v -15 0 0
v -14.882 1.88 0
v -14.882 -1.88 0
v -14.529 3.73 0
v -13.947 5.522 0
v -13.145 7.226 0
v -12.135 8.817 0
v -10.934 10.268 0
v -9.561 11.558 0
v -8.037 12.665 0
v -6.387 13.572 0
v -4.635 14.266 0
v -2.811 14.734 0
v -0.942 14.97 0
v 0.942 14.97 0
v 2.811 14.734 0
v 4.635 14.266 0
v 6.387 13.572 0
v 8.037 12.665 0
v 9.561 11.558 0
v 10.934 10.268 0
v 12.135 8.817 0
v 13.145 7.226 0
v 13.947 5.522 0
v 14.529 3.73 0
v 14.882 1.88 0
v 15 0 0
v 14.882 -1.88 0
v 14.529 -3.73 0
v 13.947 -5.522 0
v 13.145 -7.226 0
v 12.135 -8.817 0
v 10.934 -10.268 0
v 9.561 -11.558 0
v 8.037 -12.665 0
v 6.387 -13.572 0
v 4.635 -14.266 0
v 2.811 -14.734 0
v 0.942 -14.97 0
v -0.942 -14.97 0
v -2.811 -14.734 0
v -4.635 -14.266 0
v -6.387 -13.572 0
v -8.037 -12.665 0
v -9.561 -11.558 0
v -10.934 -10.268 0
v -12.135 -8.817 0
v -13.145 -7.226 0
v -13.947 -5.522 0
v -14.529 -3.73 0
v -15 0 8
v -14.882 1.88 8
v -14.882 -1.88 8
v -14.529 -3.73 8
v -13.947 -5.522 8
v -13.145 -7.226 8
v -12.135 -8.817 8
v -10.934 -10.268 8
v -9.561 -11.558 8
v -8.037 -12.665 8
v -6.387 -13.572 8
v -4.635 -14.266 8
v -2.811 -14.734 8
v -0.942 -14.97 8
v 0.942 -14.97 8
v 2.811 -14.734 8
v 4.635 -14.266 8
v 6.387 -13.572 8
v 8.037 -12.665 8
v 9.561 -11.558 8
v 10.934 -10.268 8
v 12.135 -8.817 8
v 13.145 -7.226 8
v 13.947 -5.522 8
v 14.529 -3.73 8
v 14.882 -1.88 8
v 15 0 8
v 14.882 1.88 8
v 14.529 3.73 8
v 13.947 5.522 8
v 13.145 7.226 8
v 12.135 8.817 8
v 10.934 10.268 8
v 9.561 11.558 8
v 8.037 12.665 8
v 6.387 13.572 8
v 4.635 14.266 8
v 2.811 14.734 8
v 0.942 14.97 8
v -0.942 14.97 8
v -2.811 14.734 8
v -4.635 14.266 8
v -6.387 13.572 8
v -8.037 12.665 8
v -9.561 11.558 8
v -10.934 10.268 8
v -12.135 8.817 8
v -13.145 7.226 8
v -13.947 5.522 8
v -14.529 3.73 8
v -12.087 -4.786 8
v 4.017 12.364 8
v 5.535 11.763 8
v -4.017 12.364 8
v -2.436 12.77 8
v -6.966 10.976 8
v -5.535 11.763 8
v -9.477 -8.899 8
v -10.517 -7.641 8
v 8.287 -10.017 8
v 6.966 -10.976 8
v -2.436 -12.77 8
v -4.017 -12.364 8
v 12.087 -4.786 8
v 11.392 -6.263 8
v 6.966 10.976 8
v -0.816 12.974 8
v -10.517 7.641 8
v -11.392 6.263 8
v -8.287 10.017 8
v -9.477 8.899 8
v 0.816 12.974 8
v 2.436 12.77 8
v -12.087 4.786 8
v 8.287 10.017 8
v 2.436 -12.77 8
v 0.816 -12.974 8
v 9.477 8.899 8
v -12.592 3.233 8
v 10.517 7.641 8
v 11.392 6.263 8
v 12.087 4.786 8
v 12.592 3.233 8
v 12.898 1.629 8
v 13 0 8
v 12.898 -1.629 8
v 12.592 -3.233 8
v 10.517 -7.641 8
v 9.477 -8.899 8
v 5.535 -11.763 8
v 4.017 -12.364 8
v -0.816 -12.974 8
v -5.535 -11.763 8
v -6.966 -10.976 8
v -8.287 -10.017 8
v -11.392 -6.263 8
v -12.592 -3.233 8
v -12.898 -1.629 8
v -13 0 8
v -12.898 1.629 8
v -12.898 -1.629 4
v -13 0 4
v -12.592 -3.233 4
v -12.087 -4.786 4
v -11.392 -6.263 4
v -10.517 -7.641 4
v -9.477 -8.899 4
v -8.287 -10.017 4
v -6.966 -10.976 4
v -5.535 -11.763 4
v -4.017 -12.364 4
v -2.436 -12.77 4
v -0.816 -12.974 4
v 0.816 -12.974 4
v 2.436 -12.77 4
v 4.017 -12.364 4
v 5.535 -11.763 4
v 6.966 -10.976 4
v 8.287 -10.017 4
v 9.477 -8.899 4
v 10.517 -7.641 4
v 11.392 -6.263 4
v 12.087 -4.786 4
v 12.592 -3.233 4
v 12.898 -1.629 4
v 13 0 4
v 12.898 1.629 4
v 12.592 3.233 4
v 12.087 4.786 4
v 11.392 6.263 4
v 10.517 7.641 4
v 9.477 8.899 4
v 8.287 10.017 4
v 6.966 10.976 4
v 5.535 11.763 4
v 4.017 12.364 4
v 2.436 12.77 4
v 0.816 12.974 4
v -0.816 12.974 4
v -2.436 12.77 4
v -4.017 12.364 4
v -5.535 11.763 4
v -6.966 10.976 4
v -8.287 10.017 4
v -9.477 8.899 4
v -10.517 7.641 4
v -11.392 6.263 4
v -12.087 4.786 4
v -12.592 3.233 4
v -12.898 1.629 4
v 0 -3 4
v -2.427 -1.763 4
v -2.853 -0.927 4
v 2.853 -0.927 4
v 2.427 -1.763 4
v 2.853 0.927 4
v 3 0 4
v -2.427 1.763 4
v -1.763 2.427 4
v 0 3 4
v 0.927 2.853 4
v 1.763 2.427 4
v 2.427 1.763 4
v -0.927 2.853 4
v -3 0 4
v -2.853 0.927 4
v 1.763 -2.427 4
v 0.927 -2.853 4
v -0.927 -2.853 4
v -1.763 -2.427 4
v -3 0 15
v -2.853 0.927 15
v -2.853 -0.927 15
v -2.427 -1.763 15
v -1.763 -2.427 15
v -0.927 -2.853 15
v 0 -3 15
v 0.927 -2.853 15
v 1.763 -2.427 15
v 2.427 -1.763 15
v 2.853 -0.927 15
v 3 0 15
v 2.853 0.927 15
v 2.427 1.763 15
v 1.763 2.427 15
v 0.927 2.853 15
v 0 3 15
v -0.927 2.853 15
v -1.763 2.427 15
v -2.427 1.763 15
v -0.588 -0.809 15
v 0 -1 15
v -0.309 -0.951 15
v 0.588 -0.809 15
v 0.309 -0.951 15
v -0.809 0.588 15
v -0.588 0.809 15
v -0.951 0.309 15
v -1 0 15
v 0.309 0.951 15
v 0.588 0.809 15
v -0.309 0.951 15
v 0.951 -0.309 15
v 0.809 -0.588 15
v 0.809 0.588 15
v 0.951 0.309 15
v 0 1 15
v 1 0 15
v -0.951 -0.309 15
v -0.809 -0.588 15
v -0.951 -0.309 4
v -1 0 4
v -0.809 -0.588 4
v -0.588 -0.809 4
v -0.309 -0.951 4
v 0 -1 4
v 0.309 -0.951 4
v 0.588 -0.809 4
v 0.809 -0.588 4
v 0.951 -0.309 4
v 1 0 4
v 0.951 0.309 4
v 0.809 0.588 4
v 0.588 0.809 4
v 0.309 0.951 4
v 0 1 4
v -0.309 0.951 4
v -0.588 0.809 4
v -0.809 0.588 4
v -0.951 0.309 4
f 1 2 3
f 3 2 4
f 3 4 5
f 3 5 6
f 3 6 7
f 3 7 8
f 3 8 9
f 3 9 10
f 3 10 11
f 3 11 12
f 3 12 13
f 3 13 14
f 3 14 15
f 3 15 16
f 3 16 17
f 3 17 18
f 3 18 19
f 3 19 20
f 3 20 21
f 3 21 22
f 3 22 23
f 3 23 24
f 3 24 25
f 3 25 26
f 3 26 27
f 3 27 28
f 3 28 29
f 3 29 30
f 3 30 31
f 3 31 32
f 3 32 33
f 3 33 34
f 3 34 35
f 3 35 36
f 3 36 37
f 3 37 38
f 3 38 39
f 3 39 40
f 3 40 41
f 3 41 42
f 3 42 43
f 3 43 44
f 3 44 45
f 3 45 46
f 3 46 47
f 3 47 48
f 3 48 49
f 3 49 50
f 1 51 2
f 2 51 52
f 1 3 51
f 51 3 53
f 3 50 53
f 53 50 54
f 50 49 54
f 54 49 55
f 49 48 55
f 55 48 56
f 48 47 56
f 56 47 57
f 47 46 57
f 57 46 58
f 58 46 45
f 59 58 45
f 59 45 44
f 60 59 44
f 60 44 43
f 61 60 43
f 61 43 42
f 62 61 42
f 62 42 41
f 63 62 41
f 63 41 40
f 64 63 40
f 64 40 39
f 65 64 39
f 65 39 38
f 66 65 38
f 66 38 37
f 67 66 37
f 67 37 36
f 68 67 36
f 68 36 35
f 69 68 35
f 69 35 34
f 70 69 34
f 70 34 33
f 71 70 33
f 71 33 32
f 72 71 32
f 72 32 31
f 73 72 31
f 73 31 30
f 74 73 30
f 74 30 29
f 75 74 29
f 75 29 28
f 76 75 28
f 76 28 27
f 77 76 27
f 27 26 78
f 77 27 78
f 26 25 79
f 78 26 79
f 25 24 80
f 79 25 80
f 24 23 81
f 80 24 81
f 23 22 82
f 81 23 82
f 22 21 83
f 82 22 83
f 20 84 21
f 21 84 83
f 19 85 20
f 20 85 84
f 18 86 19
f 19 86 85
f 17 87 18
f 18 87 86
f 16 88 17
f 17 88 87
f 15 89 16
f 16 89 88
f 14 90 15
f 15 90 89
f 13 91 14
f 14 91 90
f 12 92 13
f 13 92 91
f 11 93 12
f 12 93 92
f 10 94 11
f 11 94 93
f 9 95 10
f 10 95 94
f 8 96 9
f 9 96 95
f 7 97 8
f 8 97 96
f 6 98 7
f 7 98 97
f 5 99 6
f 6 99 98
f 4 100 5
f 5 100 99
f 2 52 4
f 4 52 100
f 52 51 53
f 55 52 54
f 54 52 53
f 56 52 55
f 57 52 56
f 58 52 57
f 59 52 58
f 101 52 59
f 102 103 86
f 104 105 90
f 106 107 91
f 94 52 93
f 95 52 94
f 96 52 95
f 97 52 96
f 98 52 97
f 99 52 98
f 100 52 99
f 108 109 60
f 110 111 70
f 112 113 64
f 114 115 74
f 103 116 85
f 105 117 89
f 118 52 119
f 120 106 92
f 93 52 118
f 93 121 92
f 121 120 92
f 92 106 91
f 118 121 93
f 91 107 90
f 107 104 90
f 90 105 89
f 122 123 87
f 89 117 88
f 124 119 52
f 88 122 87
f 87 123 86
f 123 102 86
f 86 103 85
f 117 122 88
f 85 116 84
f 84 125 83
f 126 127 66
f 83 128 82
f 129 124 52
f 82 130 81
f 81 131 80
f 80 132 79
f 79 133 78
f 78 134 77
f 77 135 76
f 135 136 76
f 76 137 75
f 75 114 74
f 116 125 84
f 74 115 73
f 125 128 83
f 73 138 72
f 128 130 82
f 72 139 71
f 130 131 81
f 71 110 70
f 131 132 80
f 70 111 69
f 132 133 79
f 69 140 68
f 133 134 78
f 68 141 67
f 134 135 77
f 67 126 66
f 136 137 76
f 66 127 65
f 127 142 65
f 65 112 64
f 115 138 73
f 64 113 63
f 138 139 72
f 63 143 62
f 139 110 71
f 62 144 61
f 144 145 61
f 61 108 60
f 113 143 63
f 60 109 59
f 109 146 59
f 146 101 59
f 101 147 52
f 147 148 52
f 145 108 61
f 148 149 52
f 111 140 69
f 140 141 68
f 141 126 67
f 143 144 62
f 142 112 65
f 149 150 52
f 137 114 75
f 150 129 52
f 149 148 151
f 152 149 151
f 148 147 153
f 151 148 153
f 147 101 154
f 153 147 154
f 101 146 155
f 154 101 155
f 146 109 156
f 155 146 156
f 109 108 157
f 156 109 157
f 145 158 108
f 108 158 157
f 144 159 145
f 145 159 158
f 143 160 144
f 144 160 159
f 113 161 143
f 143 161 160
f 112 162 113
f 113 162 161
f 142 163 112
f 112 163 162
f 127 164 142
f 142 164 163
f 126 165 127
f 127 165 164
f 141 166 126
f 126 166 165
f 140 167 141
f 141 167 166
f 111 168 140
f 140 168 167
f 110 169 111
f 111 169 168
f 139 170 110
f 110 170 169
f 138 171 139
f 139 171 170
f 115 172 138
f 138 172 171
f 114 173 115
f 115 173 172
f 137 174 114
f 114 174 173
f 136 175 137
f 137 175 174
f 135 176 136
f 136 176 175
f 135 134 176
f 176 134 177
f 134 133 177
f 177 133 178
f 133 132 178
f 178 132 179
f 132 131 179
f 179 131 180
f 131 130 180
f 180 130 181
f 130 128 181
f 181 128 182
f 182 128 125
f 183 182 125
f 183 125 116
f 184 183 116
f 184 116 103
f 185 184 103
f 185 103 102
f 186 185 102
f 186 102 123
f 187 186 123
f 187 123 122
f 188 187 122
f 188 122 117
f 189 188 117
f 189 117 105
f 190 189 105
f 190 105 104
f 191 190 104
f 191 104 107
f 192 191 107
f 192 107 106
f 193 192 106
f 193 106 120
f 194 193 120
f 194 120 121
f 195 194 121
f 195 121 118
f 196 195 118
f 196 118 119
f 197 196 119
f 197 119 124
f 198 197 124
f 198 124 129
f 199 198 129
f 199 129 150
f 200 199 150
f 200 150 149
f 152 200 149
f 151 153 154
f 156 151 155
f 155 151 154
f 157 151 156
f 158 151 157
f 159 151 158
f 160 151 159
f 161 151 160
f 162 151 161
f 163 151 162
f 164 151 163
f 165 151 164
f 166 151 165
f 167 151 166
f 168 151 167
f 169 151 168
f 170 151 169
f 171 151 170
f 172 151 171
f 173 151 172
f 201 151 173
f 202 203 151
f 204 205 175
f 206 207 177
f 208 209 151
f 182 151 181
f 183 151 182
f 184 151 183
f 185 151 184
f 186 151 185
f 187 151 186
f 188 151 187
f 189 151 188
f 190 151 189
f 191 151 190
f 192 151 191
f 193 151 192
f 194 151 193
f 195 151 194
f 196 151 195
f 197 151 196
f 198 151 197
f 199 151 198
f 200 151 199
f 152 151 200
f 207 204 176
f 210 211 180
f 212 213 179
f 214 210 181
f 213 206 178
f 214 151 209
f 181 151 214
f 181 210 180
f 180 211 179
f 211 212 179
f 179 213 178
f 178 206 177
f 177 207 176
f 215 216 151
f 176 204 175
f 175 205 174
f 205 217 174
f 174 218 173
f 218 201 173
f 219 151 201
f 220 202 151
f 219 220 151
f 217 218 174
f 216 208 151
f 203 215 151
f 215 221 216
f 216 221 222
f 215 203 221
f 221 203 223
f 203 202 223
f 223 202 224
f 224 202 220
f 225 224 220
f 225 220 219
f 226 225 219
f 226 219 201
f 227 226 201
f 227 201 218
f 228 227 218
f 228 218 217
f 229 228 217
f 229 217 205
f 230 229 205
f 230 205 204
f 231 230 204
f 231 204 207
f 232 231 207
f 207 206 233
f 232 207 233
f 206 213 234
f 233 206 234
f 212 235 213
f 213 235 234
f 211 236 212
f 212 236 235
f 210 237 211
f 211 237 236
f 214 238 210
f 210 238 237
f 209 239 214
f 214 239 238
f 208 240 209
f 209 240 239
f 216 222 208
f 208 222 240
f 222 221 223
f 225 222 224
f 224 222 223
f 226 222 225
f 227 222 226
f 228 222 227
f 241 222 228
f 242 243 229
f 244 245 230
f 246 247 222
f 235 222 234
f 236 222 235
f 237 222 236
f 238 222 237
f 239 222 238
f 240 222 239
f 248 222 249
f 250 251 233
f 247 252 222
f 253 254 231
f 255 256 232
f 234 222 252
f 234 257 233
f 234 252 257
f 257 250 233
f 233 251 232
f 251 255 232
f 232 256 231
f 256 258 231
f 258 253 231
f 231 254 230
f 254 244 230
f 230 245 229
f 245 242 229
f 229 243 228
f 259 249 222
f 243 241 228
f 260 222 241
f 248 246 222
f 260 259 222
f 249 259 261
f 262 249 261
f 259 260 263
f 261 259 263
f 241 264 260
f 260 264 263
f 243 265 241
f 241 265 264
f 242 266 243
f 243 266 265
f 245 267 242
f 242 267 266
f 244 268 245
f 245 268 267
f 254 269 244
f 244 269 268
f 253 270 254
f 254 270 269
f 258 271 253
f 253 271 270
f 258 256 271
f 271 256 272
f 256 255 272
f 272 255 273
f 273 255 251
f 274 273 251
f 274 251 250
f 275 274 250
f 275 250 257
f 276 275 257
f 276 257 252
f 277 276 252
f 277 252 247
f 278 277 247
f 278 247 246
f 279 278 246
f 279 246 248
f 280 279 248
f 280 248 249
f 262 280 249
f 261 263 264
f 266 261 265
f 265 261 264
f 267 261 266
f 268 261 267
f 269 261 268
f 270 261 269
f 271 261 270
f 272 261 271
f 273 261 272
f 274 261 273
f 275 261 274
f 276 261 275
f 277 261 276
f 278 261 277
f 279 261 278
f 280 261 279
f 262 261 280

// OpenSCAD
union(){
	difference(){
		cylinder(h=8,r=15,$fn=50);
		translate([0,0,4]) cylinder(h=4,r=13,$fn=50);
	}
	difference(){
		cylinder(h=15,r=3,$fn=20);
		translate([0,0,1]) cylinder(h=15,r=1,$fn=20);
	}
}
